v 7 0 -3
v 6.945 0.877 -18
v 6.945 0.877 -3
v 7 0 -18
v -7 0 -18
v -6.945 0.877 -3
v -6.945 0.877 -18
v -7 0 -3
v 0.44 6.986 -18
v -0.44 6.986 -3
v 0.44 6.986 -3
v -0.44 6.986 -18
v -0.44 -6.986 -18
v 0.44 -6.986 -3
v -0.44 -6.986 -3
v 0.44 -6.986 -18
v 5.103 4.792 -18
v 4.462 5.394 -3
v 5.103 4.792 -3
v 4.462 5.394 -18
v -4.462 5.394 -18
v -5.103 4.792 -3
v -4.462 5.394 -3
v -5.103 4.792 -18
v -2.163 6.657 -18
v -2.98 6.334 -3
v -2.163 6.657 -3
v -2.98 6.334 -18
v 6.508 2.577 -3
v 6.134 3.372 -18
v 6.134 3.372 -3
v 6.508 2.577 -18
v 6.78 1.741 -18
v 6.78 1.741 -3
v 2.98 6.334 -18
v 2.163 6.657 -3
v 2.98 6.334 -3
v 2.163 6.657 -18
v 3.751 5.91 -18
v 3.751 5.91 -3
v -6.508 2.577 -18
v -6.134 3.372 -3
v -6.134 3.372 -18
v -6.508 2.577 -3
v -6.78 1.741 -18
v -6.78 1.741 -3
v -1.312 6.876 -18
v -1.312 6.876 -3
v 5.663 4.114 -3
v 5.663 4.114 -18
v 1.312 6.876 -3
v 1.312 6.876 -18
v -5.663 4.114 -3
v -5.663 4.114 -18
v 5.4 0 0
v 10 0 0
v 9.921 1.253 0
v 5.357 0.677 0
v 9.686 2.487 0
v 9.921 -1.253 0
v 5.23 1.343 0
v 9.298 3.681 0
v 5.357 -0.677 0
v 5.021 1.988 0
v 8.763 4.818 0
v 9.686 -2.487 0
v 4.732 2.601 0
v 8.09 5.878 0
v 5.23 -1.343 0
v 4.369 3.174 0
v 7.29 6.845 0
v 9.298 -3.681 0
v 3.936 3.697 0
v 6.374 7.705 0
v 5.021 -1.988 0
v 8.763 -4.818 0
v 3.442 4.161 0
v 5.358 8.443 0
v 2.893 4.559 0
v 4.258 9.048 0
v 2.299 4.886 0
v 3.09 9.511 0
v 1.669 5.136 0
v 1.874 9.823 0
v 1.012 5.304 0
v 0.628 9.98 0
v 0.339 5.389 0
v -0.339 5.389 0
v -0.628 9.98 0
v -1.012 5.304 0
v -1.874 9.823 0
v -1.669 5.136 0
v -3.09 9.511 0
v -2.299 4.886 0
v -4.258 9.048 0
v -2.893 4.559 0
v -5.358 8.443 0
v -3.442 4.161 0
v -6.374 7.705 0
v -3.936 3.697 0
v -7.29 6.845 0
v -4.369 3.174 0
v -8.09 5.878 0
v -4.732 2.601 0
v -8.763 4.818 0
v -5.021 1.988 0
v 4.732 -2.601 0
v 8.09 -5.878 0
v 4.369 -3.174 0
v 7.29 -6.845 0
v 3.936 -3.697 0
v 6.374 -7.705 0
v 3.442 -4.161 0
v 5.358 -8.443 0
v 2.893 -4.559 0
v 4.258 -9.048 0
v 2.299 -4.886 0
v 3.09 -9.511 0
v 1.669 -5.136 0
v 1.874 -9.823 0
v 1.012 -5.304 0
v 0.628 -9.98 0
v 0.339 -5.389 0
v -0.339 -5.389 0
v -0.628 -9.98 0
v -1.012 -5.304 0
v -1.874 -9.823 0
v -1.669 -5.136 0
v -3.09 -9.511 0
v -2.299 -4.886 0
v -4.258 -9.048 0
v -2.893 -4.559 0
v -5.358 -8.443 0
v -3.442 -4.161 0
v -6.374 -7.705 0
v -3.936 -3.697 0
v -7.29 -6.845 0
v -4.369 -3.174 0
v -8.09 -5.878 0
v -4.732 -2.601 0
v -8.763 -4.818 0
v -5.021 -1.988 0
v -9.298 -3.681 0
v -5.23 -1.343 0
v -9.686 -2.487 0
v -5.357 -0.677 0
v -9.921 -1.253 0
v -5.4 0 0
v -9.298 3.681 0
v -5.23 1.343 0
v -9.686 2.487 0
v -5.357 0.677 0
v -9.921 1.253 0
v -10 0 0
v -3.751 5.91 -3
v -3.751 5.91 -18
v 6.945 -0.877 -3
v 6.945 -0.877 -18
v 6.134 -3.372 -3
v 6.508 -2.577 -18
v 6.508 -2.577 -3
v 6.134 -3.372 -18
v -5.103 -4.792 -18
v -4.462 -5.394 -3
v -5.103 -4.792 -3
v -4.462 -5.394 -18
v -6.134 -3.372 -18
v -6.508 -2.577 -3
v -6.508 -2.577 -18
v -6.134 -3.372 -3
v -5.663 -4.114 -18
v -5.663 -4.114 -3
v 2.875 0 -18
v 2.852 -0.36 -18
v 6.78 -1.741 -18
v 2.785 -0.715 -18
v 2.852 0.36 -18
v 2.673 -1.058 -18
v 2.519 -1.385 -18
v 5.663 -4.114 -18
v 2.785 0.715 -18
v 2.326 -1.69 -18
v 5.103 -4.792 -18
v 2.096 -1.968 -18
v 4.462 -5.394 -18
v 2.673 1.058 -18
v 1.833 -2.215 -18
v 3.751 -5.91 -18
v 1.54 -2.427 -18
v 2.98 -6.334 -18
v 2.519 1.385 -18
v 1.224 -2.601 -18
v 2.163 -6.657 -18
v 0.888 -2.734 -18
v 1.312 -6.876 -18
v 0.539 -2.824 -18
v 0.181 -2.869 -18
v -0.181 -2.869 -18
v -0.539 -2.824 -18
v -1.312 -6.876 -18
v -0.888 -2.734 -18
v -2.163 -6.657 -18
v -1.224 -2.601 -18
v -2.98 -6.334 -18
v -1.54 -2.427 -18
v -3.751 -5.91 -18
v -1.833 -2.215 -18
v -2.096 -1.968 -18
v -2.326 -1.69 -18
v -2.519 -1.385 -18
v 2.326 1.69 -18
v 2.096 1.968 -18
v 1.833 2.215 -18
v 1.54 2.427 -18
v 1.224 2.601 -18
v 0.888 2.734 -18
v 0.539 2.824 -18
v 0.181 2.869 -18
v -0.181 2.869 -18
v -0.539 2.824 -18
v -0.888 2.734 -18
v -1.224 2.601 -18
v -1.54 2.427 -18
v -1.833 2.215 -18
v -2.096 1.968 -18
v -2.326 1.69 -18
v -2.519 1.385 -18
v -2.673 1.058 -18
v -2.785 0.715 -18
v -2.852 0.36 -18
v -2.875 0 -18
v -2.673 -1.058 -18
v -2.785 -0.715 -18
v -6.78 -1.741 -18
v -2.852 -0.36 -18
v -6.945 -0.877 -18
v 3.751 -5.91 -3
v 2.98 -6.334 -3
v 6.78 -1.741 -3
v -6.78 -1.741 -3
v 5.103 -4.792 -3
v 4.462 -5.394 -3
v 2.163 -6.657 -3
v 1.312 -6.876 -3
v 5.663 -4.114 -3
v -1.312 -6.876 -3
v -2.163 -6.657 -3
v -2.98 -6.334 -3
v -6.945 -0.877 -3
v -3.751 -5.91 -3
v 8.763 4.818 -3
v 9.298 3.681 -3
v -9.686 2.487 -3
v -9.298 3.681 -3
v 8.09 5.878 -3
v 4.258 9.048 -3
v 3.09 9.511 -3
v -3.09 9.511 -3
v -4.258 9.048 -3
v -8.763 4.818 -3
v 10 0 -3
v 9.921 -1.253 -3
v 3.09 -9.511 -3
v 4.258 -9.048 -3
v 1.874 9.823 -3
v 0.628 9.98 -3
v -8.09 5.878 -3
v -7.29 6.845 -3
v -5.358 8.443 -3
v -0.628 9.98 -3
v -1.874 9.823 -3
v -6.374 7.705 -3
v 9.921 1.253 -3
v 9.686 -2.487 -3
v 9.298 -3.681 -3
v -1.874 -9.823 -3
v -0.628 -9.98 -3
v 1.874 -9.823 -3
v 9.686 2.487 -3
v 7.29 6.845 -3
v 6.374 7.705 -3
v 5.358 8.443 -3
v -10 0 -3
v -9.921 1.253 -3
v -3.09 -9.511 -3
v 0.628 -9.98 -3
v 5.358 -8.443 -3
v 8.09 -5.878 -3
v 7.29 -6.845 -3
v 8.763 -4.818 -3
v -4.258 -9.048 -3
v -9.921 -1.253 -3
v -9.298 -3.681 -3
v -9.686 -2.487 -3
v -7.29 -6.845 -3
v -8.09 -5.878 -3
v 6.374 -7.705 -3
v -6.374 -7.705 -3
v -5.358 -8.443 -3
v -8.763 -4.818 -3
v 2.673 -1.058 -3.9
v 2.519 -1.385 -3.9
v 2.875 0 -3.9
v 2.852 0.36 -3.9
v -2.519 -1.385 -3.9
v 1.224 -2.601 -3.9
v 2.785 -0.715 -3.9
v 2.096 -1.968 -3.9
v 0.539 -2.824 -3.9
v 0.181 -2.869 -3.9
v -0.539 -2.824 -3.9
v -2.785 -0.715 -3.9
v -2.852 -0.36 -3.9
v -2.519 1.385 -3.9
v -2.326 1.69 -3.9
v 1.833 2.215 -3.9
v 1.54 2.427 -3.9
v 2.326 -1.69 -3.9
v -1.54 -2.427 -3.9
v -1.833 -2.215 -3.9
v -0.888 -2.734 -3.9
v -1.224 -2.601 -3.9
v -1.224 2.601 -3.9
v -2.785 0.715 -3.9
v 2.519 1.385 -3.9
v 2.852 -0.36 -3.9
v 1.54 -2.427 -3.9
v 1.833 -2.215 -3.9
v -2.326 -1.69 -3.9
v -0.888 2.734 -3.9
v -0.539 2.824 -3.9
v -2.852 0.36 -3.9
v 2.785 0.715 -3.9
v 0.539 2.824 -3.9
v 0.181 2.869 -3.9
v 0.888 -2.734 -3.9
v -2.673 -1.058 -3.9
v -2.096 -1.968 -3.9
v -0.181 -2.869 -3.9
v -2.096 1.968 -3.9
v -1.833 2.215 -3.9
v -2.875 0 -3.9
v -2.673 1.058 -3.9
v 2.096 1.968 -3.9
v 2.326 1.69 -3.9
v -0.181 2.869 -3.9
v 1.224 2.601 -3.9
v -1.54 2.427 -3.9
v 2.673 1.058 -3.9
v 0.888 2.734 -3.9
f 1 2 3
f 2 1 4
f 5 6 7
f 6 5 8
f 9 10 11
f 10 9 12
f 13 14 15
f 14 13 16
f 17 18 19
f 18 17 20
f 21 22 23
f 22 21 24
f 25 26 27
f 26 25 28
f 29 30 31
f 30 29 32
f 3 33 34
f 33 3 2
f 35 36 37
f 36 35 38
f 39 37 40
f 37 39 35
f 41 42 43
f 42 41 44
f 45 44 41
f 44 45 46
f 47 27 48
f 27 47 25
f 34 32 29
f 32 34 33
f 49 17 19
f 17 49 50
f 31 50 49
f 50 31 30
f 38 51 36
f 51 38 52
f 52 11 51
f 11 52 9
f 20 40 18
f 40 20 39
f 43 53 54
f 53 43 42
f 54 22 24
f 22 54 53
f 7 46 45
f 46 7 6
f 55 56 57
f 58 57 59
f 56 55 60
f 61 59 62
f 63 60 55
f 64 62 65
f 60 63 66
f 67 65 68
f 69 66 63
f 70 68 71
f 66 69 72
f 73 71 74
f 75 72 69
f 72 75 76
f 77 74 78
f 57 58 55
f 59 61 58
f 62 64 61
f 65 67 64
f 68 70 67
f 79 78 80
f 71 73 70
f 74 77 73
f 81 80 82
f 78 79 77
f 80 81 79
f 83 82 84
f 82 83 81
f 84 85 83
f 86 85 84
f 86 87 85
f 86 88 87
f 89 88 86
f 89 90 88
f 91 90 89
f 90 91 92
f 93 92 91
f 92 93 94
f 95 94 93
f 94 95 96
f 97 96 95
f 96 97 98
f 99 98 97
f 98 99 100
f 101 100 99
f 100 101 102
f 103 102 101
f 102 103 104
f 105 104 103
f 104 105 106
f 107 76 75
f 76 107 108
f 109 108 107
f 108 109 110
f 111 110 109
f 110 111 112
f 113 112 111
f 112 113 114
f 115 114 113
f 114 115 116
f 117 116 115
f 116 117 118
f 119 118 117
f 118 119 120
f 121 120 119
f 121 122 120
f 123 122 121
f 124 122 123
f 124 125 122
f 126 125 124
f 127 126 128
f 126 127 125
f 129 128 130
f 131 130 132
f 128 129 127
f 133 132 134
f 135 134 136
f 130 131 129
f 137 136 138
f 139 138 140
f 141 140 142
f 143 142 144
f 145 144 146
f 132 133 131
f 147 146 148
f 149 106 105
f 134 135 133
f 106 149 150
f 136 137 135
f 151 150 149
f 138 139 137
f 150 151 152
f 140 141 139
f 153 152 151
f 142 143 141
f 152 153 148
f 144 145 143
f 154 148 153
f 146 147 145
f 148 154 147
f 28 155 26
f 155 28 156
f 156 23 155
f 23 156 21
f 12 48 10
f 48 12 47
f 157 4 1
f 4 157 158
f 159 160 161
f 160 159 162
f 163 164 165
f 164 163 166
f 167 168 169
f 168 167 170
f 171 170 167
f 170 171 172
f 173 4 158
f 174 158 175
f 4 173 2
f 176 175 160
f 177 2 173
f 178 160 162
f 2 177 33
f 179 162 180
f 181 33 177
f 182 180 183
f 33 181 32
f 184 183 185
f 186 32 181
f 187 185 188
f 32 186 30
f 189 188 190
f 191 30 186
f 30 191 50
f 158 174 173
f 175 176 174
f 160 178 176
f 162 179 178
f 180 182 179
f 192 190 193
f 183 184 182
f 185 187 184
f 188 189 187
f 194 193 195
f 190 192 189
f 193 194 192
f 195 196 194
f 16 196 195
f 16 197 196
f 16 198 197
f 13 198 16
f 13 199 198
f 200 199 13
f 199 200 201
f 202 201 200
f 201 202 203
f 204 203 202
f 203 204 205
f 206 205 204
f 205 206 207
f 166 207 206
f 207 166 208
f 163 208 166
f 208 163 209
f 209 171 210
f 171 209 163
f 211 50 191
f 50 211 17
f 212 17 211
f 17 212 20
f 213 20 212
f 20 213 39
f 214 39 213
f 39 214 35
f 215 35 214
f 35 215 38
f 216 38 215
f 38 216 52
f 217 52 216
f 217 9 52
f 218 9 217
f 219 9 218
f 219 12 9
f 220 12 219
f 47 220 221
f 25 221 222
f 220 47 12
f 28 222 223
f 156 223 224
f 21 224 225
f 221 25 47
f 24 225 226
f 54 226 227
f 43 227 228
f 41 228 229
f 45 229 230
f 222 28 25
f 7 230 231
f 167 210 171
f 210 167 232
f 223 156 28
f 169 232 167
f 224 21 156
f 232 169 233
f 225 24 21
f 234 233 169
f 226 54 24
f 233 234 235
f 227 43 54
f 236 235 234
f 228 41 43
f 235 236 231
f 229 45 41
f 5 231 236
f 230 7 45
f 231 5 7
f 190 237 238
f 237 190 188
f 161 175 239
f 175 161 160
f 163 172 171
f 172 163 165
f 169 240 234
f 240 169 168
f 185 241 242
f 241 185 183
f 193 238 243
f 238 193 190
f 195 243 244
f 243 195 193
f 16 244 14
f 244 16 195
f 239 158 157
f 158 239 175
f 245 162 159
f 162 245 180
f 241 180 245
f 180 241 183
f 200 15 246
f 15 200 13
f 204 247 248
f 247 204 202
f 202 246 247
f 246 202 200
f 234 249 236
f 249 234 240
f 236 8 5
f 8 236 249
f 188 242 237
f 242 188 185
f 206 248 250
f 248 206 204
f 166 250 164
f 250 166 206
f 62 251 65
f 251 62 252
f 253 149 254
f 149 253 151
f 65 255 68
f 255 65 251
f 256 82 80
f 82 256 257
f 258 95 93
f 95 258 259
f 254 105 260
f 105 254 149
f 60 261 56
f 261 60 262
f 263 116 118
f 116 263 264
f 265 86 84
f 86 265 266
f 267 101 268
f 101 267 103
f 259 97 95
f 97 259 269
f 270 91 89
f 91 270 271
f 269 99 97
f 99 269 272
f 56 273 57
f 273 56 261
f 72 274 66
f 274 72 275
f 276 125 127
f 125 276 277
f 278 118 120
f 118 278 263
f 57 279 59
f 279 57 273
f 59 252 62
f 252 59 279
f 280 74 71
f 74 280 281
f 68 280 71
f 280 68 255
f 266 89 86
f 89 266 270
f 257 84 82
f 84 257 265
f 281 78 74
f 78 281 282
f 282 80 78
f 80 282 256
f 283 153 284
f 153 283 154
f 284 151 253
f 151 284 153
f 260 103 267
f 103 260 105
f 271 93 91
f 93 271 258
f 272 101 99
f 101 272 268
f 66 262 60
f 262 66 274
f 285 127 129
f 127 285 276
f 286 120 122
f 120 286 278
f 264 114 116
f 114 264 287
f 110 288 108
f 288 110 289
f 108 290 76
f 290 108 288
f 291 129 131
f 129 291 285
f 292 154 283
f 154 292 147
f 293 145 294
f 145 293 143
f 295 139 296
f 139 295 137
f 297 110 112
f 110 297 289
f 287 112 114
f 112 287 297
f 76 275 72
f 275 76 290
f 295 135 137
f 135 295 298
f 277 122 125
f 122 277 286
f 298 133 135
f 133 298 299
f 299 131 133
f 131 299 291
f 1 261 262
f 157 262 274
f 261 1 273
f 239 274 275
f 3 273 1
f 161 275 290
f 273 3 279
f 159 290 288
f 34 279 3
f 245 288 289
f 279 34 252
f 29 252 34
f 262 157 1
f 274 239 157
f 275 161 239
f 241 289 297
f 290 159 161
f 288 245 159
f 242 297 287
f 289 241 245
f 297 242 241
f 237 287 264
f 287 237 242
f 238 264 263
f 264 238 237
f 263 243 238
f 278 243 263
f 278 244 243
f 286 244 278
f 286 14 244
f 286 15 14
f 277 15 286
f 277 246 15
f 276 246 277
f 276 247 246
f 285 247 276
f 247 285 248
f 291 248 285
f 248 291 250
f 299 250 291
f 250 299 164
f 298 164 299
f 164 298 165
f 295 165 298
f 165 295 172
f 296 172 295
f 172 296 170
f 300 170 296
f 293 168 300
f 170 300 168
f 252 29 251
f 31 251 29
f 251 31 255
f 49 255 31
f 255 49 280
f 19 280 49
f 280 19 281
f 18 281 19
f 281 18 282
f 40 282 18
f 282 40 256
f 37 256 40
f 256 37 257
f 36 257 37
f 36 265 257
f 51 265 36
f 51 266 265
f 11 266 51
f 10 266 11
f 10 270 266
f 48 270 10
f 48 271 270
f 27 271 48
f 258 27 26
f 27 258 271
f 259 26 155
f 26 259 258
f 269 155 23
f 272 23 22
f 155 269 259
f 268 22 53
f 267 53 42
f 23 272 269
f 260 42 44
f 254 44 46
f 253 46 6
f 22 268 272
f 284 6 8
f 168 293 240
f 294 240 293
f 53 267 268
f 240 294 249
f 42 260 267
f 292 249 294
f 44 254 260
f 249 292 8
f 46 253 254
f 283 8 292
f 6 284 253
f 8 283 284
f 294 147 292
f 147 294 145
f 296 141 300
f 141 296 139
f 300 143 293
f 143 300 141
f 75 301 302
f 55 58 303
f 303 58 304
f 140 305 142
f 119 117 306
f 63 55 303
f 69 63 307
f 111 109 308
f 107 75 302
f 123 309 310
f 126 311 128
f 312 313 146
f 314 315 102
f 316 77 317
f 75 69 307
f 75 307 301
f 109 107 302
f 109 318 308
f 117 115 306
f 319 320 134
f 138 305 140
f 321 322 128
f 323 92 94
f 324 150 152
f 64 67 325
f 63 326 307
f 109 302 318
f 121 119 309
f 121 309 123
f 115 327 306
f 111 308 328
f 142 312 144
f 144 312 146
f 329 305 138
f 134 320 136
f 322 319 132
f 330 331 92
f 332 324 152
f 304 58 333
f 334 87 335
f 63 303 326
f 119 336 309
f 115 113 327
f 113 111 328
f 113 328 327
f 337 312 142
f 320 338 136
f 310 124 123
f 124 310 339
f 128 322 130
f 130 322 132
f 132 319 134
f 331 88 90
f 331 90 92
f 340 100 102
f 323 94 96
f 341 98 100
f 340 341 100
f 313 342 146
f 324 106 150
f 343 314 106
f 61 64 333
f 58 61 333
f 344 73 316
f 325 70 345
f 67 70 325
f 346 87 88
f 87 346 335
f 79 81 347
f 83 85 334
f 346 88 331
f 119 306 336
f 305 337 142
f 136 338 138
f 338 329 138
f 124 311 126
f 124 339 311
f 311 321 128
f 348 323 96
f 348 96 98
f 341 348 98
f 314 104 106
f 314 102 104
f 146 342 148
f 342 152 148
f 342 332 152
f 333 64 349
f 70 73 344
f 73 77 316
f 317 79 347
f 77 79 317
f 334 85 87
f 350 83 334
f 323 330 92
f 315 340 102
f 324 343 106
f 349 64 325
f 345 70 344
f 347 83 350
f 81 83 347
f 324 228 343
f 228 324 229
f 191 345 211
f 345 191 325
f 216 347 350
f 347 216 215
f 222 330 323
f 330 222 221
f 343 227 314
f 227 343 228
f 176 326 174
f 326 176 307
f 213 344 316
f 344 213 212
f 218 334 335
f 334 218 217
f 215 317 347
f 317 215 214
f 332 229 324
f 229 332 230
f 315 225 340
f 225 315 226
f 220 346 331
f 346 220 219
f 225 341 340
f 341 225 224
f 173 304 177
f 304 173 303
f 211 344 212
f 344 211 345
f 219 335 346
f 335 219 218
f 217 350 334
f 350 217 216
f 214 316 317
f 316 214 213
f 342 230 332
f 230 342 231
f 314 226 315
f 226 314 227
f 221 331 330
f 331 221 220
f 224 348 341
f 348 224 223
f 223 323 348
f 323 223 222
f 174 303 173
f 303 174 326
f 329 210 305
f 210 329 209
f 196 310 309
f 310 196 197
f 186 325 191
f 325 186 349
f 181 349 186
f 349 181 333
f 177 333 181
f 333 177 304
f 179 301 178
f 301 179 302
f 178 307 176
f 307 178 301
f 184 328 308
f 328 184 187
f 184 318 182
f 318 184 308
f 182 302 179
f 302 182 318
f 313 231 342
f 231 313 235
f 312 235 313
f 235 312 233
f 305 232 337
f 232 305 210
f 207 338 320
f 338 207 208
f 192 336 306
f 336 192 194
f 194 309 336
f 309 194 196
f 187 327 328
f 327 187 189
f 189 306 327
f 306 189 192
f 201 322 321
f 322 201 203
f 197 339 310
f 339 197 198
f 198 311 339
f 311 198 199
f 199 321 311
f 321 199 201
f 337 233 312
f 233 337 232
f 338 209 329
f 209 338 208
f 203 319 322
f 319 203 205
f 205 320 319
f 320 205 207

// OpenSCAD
$fn = 50;


difference() {
	union() {
		translate(v = [0, 0, -18.0000000000]) {
			cylinder(h = 18, r = 7.0000000000);
		}
		translate(v = [0, 0, -3.0000000000]) {
			cylinder(h = 3, r = 10.0000000000);
		}
	}
	union() {
		translate(v = [0, 0, 0]) {
			rotate(a = [0, 0, 0]) {
				difference() {
					union() {
						#translate(v = [0, 0, -18.0000000000]) {
							cylinder(h = 18, r = 2.6000000000);
						}
						#translate(v = [0, 0, -3.9000000000]) {
							cylinder(h = 3.9000000000, r1 = 2.8750000000, r2 = 5.4000000000);
						}
						#translate(v = [0, 0, -18.0000000000]) {
							cylinder(h = 18, r = 2.8750000000);
						}
						#translate(v = [0, 0, -18.0000000000]) {
							cylinder(h = 18, r = 2.6000000000);
						}
					}
					union();
				}
			}
		}
	}
}
